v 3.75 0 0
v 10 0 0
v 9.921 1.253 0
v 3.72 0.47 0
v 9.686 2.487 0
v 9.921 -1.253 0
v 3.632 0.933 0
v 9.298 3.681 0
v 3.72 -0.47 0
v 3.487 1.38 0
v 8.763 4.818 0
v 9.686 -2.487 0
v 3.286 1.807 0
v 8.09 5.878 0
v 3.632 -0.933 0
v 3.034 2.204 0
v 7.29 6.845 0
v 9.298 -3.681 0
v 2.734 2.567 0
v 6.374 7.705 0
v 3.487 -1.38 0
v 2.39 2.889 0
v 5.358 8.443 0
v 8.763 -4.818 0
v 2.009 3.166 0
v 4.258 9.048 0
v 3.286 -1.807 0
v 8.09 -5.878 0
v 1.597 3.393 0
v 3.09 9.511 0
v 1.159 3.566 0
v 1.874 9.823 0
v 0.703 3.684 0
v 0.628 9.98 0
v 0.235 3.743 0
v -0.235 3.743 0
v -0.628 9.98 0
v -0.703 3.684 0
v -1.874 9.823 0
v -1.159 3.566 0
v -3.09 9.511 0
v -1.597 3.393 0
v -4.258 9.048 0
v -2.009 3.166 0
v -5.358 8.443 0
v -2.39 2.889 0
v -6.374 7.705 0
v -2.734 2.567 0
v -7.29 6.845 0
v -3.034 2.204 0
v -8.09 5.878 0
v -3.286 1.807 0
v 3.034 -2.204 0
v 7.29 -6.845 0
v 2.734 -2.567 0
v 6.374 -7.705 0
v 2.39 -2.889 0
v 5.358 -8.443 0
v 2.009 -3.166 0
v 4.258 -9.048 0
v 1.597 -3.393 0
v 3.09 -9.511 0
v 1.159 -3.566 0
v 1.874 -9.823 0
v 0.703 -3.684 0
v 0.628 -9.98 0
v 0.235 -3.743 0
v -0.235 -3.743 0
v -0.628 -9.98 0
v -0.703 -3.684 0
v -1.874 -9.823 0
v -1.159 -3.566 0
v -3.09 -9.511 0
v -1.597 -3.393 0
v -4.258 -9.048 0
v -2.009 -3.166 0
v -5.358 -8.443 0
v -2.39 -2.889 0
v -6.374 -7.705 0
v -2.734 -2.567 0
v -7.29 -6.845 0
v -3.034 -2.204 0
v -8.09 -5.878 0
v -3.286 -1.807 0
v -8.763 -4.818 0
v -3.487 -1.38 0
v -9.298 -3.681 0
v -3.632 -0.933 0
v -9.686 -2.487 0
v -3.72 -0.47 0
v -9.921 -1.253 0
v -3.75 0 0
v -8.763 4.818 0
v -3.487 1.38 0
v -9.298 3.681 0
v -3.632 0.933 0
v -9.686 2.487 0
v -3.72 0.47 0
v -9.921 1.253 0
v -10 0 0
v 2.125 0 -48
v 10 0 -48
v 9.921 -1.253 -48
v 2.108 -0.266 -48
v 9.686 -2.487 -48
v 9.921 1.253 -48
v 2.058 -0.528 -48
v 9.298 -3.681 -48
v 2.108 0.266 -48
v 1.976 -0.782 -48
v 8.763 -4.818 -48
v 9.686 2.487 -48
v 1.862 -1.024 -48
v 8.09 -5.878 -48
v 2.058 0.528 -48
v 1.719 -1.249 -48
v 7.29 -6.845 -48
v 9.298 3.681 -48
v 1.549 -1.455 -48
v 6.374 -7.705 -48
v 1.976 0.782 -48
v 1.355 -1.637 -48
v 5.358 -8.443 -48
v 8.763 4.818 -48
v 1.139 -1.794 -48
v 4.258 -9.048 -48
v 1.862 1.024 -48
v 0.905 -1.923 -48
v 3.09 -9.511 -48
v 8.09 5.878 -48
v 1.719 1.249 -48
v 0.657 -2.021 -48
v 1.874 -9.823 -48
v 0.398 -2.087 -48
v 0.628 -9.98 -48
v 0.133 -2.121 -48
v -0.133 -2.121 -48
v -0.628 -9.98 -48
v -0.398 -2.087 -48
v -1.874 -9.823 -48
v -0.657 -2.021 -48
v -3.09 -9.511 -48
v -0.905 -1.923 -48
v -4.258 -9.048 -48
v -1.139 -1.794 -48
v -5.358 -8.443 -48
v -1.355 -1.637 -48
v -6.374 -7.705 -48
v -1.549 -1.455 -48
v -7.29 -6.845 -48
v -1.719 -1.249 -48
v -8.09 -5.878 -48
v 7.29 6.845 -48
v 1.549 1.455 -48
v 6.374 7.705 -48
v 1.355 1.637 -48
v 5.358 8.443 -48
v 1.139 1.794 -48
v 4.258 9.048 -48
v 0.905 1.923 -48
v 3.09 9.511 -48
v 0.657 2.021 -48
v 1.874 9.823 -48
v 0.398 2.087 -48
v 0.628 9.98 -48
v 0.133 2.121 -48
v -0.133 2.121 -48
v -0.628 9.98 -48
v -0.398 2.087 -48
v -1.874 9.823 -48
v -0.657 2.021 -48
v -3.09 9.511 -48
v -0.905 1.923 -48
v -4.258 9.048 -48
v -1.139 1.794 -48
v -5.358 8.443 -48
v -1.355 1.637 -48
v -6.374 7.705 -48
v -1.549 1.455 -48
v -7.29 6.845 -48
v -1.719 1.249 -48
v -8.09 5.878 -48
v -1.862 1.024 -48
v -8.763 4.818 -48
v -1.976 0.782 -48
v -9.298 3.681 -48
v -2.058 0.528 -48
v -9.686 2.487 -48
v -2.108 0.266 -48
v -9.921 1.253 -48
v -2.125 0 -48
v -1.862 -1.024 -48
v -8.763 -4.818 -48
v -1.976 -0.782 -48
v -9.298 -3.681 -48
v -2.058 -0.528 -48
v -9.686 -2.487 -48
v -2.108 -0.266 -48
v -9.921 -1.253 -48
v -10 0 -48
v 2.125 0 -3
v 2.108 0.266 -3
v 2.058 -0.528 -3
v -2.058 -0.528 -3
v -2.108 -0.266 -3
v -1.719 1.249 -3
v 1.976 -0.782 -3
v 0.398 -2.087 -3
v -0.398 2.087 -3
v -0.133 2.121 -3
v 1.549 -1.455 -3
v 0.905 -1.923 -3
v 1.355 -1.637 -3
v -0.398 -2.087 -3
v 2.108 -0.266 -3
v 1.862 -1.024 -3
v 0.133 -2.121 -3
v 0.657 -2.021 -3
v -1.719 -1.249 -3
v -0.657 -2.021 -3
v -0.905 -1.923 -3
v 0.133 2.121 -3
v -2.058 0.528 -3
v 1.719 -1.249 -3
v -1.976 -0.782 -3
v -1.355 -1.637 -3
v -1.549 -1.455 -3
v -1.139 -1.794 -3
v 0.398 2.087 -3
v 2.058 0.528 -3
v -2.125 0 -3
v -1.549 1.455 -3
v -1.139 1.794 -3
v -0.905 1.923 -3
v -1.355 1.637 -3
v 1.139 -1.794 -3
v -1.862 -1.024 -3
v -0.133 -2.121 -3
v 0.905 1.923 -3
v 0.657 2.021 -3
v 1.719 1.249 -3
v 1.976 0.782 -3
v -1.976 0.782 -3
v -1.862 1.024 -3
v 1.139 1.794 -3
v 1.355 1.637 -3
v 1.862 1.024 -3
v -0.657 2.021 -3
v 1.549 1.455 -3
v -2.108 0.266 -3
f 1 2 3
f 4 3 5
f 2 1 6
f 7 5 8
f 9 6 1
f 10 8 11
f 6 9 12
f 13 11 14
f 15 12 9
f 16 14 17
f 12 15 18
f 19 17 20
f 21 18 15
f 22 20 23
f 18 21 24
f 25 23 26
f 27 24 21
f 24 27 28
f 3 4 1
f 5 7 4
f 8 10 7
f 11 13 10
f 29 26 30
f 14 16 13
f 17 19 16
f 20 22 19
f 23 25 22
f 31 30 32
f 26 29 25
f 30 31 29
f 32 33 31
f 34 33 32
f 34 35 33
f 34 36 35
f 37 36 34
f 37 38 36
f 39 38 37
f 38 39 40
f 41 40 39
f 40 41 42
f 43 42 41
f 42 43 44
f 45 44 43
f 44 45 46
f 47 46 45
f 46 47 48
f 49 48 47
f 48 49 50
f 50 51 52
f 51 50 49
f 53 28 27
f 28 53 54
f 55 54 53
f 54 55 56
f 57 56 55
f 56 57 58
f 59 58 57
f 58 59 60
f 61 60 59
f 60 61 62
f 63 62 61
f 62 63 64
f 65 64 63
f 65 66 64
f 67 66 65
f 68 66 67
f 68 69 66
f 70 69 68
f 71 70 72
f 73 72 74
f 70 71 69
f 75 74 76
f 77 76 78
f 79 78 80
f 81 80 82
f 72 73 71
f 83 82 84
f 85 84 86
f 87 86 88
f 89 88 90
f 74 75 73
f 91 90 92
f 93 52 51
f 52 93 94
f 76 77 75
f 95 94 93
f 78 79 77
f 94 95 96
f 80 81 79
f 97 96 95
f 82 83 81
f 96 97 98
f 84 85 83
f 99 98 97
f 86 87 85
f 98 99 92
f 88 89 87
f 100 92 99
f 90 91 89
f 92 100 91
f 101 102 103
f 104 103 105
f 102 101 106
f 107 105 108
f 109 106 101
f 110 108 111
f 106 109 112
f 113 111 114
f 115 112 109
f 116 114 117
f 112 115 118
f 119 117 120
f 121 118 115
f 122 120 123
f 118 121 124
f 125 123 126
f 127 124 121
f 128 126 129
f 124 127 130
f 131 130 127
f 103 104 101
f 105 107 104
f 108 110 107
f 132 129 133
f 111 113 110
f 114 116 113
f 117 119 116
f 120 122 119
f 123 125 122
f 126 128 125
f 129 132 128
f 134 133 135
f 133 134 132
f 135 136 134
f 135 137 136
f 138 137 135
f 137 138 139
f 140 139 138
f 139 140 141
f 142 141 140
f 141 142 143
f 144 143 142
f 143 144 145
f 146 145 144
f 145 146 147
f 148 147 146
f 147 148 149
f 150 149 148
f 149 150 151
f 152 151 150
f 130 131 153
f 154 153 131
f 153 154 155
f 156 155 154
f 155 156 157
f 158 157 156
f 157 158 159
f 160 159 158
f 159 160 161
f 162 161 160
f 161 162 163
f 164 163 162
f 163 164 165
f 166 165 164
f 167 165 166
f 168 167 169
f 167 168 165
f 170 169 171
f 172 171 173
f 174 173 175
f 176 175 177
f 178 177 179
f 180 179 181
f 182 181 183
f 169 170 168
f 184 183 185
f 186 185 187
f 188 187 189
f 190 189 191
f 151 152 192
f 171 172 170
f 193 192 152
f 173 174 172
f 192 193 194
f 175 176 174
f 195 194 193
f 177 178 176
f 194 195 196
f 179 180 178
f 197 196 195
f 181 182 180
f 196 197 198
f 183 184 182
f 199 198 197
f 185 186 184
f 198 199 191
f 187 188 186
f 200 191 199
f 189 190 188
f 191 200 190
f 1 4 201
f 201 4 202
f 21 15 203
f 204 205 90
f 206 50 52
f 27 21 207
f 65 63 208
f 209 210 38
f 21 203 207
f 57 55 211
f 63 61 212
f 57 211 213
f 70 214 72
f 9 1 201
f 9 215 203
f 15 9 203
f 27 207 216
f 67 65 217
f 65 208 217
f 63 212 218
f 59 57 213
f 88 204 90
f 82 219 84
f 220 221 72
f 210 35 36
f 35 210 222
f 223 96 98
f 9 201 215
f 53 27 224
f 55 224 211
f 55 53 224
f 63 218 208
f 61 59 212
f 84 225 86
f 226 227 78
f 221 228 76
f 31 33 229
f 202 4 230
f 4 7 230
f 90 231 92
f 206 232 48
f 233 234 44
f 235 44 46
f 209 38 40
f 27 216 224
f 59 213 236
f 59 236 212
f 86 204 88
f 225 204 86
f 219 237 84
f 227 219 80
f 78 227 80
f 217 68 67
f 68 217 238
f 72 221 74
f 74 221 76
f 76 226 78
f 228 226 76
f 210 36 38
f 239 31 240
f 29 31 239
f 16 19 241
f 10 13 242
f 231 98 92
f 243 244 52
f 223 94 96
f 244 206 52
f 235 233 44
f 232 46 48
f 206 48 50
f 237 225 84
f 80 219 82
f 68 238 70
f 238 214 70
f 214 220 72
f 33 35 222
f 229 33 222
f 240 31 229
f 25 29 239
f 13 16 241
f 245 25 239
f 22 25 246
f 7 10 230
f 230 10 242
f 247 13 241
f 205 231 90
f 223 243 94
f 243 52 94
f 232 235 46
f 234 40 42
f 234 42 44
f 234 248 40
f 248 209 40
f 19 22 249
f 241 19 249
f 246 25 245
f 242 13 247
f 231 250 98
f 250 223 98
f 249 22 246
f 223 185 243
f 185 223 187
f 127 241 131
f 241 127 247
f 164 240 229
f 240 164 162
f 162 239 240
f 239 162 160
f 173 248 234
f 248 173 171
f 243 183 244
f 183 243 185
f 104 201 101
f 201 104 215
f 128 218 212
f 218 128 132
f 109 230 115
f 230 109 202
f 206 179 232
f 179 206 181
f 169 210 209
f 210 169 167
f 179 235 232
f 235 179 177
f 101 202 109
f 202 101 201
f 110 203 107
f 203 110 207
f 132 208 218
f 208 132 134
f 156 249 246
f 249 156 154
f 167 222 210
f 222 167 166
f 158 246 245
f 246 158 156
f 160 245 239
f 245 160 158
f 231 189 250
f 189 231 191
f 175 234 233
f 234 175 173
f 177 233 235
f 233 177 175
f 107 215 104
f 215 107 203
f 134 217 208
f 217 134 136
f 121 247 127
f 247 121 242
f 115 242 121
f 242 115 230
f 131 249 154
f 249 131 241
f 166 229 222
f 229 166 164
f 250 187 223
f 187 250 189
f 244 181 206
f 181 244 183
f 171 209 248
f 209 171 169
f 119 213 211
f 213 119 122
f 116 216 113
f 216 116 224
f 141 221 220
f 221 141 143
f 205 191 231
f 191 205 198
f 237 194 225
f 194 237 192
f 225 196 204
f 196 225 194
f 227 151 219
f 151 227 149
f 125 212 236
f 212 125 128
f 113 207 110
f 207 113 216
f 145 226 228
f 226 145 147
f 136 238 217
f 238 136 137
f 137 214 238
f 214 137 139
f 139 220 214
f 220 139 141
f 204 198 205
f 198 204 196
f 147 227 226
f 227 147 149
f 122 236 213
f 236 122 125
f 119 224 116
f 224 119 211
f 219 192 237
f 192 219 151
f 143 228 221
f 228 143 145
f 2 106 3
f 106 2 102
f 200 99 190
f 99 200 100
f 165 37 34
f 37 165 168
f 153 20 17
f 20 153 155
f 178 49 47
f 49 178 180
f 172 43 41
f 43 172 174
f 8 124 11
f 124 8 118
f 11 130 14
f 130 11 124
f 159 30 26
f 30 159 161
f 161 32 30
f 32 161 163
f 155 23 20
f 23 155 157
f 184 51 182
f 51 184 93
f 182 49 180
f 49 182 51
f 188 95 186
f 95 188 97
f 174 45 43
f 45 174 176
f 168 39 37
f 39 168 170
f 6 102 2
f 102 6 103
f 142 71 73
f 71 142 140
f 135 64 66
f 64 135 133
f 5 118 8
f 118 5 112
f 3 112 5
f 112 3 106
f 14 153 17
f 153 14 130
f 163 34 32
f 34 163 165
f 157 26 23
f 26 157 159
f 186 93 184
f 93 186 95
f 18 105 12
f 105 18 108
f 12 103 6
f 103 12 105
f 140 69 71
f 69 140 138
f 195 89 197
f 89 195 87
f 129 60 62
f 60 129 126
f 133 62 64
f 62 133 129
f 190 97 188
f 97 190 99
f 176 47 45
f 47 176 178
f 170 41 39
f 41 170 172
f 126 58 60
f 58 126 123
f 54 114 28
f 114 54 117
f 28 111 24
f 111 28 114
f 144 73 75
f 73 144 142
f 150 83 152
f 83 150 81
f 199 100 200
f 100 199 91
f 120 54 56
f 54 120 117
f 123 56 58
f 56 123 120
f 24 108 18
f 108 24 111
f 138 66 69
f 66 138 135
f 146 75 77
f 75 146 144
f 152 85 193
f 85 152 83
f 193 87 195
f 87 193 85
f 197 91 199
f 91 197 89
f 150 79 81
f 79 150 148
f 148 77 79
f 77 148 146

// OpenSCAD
$fn = 50;


difference() {
	union() {
		translate(v = [0, 0, -48.0000000000]) {
			cylinder(h = 48, r = 10.0000000000);
		}
		cylinder(h = 0, r = 16.0000000000);
	}
	union() {
		translate(v = [0, 0, 0]) {
			rotate(a = [0, 0, 0]) {
				difference() {
					union() {
						#translate(v = [0, 0, -48.0000000000]) {
							cylinder(h = 48, r = 2.0000000000);
						}
						#translate(v = [0, 0, -3]) {
							cylinder(h = 3, r1 = 2.1250000000, r2 = 3.7500000000);
						}
						#translate(v = [0, 0, -48.0000000000]) {
							cylinder(h = 48, r = 2.1250000000);
						}
						#translate(v = [0, 0, -48.0000000000]) {
							cylinder(h = 48, r = 2.0000000000);
						}
					}
					union();
				}
			}
		}
	}
}
